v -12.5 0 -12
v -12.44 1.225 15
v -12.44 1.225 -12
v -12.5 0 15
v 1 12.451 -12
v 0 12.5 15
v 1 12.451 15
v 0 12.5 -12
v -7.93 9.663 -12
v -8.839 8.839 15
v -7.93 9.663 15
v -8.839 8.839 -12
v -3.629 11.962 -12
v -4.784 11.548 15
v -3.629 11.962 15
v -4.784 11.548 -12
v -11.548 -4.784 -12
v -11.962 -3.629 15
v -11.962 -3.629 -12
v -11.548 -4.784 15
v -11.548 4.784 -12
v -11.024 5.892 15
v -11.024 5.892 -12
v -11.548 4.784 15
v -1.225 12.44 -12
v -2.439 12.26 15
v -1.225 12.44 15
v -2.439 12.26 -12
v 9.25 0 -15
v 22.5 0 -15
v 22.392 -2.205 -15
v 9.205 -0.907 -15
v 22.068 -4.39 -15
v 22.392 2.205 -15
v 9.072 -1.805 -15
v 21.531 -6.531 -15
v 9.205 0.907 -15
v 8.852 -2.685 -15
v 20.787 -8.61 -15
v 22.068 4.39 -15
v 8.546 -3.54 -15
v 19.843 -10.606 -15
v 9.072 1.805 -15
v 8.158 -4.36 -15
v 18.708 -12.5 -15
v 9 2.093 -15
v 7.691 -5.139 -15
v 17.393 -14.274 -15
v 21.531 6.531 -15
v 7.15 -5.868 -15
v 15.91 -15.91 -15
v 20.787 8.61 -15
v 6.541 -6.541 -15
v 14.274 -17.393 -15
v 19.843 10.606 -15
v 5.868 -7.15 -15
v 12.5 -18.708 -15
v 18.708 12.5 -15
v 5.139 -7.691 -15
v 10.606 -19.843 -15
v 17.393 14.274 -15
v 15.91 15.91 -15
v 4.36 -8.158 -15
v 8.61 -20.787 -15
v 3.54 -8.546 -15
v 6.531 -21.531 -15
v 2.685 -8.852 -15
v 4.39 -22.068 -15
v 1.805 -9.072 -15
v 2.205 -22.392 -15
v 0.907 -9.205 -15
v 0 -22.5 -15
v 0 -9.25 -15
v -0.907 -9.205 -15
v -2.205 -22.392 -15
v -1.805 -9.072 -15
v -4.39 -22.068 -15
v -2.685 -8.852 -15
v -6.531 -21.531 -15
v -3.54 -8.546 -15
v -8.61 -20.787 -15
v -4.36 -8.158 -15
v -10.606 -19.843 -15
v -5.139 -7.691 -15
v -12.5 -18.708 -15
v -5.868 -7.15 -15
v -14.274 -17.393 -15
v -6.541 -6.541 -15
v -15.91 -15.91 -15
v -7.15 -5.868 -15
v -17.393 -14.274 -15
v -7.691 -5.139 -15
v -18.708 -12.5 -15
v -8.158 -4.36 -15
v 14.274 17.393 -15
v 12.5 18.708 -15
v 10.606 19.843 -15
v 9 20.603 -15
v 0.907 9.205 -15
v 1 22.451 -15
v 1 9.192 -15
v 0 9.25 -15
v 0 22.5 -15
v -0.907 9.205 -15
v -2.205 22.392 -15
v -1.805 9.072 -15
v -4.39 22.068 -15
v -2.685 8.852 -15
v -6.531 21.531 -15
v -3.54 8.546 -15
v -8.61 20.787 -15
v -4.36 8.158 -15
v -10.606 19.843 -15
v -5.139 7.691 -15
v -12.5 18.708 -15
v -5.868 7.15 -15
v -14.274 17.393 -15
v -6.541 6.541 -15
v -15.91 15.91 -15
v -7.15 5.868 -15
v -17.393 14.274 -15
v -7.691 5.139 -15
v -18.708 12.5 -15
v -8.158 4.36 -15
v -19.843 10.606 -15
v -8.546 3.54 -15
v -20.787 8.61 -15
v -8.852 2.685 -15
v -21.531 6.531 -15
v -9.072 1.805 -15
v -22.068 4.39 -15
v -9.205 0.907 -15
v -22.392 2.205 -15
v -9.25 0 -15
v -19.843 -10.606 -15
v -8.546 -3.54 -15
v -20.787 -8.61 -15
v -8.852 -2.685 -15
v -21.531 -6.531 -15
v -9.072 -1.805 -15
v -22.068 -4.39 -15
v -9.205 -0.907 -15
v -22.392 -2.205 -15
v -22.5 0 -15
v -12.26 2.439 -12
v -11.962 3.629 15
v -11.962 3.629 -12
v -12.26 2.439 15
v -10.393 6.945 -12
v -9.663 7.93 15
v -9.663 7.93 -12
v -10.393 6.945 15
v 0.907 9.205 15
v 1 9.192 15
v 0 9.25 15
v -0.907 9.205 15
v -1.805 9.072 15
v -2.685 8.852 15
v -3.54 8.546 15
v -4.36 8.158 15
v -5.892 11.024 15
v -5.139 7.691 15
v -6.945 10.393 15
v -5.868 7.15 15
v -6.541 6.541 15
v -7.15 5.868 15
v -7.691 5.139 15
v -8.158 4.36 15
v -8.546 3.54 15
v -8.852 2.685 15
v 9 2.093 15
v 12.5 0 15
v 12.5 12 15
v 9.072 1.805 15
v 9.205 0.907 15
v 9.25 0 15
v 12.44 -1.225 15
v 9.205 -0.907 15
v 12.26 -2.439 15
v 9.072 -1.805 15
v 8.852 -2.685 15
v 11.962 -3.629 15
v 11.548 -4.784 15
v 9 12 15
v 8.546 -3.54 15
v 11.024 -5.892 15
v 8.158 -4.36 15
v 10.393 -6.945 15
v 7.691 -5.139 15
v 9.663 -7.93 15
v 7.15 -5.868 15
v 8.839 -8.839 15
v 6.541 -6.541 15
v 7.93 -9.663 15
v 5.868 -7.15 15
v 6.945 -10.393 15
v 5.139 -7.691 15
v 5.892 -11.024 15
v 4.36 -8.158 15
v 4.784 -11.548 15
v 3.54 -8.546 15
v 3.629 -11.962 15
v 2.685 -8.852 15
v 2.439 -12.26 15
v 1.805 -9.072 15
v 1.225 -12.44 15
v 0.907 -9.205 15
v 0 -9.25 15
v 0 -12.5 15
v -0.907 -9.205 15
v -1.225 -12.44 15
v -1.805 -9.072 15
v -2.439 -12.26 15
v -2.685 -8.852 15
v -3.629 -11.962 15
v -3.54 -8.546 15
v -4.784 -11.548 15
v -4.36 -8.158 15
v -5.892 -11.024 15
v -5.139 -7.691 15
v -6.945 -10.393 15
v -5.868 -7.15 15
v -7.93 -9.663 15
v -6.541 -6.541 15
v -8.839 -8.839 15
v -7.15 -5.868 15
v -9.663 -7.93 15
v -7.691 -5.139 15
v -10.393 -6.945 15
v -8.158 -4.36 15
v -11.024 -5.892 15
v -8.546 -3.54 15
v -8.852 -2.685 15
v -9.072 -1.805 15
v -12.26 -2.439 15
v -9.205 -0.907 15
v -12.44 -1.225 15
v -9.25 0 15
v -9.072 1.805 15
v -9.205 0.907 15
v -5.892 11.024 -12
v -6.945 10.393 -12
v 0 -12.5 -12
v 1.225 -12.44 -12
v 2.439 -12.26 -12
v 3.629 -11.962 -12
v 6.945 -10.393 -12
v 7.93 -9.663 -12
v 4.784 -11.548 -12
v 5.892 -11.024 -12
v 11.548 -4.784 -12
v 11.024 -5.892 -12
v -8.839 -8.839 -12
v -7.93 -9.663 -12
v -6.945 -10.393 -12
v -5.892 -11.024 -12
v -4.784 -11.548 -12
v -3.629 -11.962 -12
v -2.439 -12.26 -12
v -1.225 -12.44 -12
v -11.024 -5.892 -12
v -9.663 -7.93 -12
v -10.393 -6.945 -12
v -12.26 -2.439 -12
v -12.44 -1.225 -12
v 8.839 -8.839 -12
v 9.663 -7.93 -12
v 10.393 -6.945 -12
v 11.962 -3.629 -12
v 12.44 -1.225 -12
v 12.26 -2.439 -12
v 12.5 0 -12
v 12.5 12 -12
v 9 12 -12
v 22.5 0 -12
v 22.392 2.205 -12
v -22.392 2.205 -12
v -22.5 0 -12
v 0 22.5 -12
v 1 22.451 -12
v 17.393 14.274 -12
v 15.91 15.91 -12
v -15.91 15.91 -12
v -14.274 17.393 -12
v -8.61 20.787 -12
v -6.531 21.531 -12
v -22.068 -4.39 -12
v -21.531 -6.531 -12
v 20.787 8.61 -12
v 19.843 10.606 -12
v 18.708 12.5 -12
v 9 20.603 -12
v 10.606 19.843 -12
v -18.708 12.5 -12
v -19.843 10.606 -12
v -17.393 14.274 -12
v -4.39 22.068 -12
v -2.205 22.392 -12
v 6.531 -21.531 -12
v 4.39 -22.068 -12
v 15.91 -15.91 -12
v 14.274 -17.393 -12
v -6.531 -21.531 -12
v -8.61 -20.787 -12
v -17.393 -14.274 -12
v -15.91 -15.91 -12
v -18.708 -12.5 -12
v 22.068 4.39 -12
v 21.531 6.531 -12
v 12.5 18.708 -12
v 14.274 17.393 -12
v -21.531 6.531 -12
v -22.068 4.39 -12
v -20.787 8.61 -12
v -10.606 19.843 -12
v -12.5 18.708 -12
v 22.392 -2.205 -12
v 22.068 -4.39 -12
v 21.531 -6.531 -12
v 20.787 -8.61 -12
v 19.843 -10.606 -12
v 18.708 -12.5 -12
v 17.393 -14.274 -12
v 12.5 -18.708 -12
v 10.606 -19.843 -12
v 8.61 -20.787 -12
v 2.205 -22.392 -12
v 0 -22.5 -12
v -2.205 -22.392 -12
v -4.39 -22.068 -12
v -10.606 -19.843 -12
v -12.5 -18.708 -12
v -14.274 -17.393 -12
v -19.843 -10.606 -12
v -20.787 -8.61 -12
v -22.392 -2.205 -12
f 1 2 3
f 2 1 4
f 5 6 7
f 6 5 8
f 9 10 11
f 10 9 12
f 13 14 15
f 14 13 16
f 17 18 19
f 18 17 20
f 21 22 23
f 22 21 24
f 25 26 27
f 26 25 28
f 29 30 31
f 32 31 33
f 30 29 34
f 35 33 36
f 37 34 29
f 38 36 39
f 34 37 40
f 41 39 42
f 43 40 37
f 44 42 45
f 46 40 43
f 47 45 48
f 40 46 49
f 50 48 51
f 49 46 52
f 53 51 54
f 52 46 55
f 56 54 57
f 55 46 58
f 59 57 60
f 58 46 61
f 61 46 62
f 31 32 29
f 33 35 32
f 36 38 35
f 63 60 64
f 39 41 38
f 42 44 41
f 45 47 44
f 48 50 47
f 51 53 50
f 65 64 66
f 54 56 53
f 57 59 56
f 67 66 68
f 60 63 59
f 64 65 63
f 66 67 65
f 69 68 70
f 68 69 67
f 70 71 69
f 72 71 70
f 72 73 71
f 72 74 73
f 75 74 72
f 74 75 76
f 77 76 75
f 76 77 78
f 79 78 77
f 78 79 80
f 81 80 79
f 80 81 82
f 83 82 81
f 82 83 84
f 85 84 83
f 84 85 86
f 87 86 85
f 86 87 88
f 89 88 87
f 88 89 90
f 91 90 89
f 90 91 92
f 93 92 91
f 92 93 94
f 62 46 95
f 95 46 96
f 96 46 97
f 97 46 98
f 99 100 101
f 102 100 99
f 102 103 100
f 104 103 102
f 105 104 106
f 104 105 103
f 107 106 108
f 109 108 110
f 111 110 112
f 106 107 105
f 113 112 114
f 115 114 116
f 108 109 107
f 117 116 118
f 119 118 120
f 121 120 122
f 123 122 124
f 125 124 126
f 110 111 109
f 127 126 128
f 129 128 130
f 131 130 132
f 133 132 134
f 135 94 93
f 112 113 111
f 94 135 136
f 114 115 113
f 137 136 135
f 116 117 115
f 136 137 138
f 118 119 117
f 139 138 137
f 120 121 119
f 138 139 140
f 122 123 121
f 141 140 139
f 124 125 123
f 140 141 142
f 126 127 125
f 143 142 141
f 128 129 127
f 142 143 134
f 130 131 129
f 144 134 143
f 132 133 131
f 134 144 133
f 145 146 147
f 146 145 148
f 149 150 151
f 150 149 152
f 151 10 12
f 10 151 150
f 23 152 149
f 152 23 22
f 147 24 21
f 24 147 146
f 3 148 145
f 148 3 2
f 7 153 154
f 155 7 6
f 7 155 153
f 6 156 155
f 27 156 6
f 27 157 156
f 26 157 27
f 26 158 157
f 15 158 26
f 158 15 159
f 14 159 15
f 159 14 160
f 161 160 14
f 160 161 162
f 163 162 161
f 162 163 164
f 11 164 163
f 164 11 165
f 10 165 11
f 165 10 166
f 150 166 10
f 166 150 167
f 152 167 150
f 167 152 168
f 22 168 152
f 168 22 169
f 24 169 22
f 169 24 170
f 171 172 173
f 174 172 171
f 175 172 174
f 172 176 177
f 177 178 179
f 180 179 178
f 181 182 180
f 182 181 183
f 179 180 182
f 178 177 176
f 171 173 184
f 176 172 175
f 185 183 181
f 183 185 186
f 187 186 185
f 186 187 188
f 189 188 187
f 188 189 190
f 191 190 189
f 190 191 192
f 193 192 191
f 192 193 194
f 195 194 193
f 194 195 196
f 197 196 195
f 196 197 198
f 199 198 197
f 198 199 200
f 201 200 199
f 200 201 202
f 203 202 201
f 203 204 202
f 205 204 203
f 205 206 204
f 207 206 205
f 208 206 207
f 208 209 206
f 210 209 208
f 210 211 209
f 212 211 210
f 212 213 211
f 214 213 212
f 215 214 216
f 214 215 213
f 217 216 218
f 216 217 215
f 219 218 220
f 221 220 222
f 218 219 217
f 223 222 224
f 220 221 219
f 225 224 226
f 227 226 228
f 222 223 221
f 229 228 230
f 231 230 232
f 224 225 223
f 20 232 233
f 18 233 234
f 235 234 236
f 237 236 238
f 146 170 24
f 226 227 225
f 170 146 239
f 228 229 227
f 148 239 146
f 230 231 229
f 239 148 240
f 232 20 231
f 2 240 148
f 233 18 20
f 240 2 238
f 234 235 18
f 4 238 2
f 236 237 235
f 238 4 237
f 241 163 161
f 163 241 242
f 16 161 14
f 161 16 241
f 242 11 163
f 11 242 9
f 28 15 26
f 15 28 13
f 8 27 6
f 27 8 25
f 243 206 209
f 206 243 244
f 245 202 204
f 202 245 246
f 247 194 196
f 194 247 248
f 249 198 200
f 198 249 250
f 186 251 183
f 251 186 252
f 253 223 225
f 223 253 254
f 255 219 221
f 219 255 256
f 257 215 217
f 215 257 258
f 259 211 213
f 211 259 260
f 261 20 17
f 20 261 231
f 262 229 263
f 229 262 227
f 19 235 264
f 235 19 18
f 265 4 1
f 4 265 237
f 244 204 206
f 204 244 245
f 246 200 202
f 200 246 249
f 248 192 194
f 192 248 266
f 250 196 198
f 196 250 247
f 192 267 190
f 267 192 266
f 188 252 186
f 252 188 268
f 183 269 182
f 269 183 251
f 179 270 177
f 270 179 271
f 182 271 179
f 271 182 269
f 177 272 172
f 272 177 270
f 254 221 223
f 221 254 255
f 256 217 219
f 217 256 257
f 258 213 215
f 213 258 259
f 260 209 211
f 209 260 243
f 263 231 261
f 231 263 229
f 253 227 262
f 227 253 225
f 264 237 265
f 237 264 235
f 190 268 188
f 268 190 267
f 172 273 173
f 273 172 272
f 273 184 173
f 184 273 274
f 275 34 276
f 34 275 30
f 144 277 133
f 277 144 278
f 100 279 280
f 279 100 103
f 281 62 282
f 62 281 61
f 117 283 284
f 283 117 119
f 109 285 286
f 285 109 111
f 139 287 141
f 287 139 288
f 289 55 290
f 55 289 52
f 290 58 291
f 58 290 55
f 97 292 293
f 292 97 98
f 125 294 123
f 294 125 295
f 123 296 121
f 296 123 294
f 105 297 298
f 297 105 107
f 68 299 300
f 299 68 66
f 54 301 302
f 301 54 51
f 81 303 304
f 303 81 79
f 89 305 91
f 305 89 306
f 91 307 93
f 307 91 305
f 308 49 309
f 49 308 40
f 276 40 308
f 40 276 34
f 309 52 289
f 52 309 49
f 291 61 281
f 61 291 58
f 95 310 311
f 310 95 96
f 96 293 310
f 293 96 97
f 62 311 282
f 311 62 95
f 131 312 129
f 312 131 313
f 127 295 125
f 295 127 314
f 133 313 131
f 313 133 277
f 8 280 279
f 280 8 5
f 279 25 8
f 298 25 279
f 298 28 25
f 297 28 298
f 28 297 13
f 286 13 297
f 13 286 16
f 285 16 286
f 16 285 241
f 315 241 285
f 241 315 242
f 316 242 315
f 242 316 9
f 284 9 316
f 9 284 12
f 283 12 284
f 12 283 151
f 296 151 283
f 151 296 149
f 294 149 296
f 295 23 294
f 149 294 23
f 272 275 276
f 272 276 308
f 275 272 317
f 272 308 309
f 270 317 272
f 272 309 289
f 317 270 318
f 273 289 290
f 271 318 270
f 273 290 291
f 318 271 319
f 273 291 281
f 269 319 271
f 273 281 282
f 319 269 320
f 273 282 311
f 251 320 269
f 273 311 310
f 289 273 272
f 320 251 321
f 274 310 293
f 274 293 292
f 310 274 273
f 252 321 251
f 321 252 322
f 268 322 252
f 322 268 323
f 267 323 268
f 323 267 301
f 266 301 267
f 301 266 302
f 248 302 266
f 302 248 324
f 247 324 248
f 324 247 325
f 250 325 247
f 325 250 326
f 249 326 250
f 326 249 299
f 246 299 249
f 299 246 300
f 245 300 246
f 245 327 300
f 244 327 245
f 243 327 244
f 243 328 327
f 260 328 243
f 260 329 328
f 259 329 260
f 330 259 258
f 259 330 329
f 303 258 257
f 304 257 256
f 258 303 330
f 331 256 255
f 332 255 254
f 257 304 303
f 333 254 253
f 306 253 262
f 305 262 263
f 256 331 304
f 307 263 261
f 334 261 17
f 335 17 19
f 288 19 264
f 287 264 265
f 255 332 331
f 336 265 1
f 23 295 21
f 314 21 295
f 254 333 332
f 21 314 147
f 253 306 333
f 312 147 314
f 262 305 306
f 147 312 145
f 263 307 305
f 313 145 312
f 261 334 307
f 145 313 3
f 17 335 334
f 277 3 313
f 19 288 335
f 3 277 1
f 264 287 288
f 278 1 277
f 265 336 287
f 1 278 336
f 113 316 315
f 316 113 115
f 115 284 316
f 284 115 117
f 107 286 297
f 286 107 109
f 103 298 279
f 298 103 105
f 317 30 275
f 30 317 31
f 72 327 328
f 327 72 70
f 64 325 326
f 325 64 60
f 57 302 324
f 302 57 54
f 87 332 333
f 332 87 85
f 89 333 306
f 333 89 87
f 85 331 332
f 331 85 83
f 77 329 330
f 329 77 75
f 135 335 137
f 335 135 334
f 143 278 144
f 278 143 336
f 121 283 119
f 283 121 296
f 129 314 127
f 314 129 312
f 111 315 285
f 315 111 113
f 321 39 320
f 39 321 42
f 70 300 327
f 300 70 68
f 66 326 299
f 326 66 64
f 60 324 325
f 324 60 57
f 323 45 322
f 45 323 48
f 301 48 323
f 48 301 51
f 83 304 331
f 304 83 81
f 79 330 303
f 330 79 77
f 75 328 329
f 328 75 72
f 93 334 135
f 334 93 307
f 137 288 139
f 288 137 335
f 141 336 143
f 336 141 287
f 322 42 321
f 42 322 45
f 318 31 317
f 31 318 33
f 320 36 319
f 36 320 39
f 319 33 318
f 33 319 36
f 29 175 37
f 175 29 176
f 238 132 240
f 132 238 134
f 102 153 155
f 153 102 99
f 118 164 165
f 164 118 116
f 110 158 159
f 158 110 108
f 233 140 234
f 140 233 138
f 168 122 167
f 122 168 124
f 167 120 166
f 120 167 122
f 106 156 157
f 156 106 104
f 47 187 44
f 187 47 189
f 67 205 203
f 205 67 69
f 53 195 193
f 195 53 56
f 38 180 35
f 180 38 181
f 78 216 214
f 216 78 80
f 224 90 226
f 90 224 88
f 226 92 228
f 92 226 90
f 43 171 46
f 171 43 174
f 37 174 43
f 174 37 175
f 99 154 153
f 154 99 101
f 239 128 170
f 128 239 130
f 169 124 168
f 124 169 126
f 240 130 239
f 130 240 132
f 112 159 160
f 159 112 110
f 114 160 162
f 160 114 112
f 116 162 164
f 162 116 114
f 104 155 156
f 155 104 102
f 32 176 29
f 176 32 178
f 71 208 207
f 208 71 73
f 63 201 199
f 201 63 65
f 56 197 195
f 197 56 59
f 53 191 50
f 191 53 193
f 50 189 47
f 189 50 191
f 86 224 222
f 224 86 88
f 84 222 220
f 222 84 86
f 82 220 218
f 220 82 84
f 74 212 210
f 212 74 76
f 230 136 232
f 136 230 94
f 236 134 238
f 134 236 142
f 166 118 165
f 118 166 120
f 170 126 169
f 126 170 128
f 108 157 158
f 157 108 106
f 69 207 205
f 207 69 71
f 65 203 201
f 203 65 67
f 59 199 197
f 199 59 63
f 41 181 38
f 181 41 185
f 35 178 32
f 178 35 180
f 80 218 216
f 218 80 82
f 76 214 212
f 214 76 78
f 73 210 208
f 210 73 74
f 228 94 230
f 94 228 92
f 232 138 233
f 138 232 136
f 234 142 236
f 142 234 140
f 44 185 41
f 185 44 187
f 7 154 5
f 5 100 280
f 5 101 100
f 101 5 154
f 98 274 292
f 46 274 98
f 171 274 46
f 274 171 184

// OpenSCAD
$fn=64;
difference() {
    union() {
        cylinder(d=25, h=30, center=true);
        translate([5, 6, 0]) cube([15, 12, 30], center=true);
        translate([0, 0, -13.5]) cylinder(d=45, h=3, center=true);
    }
    cylinder(d=18.5, h=30, center=true);
    translate([5, 15, 0]) cube([8, 30, 30], center=true);
}
